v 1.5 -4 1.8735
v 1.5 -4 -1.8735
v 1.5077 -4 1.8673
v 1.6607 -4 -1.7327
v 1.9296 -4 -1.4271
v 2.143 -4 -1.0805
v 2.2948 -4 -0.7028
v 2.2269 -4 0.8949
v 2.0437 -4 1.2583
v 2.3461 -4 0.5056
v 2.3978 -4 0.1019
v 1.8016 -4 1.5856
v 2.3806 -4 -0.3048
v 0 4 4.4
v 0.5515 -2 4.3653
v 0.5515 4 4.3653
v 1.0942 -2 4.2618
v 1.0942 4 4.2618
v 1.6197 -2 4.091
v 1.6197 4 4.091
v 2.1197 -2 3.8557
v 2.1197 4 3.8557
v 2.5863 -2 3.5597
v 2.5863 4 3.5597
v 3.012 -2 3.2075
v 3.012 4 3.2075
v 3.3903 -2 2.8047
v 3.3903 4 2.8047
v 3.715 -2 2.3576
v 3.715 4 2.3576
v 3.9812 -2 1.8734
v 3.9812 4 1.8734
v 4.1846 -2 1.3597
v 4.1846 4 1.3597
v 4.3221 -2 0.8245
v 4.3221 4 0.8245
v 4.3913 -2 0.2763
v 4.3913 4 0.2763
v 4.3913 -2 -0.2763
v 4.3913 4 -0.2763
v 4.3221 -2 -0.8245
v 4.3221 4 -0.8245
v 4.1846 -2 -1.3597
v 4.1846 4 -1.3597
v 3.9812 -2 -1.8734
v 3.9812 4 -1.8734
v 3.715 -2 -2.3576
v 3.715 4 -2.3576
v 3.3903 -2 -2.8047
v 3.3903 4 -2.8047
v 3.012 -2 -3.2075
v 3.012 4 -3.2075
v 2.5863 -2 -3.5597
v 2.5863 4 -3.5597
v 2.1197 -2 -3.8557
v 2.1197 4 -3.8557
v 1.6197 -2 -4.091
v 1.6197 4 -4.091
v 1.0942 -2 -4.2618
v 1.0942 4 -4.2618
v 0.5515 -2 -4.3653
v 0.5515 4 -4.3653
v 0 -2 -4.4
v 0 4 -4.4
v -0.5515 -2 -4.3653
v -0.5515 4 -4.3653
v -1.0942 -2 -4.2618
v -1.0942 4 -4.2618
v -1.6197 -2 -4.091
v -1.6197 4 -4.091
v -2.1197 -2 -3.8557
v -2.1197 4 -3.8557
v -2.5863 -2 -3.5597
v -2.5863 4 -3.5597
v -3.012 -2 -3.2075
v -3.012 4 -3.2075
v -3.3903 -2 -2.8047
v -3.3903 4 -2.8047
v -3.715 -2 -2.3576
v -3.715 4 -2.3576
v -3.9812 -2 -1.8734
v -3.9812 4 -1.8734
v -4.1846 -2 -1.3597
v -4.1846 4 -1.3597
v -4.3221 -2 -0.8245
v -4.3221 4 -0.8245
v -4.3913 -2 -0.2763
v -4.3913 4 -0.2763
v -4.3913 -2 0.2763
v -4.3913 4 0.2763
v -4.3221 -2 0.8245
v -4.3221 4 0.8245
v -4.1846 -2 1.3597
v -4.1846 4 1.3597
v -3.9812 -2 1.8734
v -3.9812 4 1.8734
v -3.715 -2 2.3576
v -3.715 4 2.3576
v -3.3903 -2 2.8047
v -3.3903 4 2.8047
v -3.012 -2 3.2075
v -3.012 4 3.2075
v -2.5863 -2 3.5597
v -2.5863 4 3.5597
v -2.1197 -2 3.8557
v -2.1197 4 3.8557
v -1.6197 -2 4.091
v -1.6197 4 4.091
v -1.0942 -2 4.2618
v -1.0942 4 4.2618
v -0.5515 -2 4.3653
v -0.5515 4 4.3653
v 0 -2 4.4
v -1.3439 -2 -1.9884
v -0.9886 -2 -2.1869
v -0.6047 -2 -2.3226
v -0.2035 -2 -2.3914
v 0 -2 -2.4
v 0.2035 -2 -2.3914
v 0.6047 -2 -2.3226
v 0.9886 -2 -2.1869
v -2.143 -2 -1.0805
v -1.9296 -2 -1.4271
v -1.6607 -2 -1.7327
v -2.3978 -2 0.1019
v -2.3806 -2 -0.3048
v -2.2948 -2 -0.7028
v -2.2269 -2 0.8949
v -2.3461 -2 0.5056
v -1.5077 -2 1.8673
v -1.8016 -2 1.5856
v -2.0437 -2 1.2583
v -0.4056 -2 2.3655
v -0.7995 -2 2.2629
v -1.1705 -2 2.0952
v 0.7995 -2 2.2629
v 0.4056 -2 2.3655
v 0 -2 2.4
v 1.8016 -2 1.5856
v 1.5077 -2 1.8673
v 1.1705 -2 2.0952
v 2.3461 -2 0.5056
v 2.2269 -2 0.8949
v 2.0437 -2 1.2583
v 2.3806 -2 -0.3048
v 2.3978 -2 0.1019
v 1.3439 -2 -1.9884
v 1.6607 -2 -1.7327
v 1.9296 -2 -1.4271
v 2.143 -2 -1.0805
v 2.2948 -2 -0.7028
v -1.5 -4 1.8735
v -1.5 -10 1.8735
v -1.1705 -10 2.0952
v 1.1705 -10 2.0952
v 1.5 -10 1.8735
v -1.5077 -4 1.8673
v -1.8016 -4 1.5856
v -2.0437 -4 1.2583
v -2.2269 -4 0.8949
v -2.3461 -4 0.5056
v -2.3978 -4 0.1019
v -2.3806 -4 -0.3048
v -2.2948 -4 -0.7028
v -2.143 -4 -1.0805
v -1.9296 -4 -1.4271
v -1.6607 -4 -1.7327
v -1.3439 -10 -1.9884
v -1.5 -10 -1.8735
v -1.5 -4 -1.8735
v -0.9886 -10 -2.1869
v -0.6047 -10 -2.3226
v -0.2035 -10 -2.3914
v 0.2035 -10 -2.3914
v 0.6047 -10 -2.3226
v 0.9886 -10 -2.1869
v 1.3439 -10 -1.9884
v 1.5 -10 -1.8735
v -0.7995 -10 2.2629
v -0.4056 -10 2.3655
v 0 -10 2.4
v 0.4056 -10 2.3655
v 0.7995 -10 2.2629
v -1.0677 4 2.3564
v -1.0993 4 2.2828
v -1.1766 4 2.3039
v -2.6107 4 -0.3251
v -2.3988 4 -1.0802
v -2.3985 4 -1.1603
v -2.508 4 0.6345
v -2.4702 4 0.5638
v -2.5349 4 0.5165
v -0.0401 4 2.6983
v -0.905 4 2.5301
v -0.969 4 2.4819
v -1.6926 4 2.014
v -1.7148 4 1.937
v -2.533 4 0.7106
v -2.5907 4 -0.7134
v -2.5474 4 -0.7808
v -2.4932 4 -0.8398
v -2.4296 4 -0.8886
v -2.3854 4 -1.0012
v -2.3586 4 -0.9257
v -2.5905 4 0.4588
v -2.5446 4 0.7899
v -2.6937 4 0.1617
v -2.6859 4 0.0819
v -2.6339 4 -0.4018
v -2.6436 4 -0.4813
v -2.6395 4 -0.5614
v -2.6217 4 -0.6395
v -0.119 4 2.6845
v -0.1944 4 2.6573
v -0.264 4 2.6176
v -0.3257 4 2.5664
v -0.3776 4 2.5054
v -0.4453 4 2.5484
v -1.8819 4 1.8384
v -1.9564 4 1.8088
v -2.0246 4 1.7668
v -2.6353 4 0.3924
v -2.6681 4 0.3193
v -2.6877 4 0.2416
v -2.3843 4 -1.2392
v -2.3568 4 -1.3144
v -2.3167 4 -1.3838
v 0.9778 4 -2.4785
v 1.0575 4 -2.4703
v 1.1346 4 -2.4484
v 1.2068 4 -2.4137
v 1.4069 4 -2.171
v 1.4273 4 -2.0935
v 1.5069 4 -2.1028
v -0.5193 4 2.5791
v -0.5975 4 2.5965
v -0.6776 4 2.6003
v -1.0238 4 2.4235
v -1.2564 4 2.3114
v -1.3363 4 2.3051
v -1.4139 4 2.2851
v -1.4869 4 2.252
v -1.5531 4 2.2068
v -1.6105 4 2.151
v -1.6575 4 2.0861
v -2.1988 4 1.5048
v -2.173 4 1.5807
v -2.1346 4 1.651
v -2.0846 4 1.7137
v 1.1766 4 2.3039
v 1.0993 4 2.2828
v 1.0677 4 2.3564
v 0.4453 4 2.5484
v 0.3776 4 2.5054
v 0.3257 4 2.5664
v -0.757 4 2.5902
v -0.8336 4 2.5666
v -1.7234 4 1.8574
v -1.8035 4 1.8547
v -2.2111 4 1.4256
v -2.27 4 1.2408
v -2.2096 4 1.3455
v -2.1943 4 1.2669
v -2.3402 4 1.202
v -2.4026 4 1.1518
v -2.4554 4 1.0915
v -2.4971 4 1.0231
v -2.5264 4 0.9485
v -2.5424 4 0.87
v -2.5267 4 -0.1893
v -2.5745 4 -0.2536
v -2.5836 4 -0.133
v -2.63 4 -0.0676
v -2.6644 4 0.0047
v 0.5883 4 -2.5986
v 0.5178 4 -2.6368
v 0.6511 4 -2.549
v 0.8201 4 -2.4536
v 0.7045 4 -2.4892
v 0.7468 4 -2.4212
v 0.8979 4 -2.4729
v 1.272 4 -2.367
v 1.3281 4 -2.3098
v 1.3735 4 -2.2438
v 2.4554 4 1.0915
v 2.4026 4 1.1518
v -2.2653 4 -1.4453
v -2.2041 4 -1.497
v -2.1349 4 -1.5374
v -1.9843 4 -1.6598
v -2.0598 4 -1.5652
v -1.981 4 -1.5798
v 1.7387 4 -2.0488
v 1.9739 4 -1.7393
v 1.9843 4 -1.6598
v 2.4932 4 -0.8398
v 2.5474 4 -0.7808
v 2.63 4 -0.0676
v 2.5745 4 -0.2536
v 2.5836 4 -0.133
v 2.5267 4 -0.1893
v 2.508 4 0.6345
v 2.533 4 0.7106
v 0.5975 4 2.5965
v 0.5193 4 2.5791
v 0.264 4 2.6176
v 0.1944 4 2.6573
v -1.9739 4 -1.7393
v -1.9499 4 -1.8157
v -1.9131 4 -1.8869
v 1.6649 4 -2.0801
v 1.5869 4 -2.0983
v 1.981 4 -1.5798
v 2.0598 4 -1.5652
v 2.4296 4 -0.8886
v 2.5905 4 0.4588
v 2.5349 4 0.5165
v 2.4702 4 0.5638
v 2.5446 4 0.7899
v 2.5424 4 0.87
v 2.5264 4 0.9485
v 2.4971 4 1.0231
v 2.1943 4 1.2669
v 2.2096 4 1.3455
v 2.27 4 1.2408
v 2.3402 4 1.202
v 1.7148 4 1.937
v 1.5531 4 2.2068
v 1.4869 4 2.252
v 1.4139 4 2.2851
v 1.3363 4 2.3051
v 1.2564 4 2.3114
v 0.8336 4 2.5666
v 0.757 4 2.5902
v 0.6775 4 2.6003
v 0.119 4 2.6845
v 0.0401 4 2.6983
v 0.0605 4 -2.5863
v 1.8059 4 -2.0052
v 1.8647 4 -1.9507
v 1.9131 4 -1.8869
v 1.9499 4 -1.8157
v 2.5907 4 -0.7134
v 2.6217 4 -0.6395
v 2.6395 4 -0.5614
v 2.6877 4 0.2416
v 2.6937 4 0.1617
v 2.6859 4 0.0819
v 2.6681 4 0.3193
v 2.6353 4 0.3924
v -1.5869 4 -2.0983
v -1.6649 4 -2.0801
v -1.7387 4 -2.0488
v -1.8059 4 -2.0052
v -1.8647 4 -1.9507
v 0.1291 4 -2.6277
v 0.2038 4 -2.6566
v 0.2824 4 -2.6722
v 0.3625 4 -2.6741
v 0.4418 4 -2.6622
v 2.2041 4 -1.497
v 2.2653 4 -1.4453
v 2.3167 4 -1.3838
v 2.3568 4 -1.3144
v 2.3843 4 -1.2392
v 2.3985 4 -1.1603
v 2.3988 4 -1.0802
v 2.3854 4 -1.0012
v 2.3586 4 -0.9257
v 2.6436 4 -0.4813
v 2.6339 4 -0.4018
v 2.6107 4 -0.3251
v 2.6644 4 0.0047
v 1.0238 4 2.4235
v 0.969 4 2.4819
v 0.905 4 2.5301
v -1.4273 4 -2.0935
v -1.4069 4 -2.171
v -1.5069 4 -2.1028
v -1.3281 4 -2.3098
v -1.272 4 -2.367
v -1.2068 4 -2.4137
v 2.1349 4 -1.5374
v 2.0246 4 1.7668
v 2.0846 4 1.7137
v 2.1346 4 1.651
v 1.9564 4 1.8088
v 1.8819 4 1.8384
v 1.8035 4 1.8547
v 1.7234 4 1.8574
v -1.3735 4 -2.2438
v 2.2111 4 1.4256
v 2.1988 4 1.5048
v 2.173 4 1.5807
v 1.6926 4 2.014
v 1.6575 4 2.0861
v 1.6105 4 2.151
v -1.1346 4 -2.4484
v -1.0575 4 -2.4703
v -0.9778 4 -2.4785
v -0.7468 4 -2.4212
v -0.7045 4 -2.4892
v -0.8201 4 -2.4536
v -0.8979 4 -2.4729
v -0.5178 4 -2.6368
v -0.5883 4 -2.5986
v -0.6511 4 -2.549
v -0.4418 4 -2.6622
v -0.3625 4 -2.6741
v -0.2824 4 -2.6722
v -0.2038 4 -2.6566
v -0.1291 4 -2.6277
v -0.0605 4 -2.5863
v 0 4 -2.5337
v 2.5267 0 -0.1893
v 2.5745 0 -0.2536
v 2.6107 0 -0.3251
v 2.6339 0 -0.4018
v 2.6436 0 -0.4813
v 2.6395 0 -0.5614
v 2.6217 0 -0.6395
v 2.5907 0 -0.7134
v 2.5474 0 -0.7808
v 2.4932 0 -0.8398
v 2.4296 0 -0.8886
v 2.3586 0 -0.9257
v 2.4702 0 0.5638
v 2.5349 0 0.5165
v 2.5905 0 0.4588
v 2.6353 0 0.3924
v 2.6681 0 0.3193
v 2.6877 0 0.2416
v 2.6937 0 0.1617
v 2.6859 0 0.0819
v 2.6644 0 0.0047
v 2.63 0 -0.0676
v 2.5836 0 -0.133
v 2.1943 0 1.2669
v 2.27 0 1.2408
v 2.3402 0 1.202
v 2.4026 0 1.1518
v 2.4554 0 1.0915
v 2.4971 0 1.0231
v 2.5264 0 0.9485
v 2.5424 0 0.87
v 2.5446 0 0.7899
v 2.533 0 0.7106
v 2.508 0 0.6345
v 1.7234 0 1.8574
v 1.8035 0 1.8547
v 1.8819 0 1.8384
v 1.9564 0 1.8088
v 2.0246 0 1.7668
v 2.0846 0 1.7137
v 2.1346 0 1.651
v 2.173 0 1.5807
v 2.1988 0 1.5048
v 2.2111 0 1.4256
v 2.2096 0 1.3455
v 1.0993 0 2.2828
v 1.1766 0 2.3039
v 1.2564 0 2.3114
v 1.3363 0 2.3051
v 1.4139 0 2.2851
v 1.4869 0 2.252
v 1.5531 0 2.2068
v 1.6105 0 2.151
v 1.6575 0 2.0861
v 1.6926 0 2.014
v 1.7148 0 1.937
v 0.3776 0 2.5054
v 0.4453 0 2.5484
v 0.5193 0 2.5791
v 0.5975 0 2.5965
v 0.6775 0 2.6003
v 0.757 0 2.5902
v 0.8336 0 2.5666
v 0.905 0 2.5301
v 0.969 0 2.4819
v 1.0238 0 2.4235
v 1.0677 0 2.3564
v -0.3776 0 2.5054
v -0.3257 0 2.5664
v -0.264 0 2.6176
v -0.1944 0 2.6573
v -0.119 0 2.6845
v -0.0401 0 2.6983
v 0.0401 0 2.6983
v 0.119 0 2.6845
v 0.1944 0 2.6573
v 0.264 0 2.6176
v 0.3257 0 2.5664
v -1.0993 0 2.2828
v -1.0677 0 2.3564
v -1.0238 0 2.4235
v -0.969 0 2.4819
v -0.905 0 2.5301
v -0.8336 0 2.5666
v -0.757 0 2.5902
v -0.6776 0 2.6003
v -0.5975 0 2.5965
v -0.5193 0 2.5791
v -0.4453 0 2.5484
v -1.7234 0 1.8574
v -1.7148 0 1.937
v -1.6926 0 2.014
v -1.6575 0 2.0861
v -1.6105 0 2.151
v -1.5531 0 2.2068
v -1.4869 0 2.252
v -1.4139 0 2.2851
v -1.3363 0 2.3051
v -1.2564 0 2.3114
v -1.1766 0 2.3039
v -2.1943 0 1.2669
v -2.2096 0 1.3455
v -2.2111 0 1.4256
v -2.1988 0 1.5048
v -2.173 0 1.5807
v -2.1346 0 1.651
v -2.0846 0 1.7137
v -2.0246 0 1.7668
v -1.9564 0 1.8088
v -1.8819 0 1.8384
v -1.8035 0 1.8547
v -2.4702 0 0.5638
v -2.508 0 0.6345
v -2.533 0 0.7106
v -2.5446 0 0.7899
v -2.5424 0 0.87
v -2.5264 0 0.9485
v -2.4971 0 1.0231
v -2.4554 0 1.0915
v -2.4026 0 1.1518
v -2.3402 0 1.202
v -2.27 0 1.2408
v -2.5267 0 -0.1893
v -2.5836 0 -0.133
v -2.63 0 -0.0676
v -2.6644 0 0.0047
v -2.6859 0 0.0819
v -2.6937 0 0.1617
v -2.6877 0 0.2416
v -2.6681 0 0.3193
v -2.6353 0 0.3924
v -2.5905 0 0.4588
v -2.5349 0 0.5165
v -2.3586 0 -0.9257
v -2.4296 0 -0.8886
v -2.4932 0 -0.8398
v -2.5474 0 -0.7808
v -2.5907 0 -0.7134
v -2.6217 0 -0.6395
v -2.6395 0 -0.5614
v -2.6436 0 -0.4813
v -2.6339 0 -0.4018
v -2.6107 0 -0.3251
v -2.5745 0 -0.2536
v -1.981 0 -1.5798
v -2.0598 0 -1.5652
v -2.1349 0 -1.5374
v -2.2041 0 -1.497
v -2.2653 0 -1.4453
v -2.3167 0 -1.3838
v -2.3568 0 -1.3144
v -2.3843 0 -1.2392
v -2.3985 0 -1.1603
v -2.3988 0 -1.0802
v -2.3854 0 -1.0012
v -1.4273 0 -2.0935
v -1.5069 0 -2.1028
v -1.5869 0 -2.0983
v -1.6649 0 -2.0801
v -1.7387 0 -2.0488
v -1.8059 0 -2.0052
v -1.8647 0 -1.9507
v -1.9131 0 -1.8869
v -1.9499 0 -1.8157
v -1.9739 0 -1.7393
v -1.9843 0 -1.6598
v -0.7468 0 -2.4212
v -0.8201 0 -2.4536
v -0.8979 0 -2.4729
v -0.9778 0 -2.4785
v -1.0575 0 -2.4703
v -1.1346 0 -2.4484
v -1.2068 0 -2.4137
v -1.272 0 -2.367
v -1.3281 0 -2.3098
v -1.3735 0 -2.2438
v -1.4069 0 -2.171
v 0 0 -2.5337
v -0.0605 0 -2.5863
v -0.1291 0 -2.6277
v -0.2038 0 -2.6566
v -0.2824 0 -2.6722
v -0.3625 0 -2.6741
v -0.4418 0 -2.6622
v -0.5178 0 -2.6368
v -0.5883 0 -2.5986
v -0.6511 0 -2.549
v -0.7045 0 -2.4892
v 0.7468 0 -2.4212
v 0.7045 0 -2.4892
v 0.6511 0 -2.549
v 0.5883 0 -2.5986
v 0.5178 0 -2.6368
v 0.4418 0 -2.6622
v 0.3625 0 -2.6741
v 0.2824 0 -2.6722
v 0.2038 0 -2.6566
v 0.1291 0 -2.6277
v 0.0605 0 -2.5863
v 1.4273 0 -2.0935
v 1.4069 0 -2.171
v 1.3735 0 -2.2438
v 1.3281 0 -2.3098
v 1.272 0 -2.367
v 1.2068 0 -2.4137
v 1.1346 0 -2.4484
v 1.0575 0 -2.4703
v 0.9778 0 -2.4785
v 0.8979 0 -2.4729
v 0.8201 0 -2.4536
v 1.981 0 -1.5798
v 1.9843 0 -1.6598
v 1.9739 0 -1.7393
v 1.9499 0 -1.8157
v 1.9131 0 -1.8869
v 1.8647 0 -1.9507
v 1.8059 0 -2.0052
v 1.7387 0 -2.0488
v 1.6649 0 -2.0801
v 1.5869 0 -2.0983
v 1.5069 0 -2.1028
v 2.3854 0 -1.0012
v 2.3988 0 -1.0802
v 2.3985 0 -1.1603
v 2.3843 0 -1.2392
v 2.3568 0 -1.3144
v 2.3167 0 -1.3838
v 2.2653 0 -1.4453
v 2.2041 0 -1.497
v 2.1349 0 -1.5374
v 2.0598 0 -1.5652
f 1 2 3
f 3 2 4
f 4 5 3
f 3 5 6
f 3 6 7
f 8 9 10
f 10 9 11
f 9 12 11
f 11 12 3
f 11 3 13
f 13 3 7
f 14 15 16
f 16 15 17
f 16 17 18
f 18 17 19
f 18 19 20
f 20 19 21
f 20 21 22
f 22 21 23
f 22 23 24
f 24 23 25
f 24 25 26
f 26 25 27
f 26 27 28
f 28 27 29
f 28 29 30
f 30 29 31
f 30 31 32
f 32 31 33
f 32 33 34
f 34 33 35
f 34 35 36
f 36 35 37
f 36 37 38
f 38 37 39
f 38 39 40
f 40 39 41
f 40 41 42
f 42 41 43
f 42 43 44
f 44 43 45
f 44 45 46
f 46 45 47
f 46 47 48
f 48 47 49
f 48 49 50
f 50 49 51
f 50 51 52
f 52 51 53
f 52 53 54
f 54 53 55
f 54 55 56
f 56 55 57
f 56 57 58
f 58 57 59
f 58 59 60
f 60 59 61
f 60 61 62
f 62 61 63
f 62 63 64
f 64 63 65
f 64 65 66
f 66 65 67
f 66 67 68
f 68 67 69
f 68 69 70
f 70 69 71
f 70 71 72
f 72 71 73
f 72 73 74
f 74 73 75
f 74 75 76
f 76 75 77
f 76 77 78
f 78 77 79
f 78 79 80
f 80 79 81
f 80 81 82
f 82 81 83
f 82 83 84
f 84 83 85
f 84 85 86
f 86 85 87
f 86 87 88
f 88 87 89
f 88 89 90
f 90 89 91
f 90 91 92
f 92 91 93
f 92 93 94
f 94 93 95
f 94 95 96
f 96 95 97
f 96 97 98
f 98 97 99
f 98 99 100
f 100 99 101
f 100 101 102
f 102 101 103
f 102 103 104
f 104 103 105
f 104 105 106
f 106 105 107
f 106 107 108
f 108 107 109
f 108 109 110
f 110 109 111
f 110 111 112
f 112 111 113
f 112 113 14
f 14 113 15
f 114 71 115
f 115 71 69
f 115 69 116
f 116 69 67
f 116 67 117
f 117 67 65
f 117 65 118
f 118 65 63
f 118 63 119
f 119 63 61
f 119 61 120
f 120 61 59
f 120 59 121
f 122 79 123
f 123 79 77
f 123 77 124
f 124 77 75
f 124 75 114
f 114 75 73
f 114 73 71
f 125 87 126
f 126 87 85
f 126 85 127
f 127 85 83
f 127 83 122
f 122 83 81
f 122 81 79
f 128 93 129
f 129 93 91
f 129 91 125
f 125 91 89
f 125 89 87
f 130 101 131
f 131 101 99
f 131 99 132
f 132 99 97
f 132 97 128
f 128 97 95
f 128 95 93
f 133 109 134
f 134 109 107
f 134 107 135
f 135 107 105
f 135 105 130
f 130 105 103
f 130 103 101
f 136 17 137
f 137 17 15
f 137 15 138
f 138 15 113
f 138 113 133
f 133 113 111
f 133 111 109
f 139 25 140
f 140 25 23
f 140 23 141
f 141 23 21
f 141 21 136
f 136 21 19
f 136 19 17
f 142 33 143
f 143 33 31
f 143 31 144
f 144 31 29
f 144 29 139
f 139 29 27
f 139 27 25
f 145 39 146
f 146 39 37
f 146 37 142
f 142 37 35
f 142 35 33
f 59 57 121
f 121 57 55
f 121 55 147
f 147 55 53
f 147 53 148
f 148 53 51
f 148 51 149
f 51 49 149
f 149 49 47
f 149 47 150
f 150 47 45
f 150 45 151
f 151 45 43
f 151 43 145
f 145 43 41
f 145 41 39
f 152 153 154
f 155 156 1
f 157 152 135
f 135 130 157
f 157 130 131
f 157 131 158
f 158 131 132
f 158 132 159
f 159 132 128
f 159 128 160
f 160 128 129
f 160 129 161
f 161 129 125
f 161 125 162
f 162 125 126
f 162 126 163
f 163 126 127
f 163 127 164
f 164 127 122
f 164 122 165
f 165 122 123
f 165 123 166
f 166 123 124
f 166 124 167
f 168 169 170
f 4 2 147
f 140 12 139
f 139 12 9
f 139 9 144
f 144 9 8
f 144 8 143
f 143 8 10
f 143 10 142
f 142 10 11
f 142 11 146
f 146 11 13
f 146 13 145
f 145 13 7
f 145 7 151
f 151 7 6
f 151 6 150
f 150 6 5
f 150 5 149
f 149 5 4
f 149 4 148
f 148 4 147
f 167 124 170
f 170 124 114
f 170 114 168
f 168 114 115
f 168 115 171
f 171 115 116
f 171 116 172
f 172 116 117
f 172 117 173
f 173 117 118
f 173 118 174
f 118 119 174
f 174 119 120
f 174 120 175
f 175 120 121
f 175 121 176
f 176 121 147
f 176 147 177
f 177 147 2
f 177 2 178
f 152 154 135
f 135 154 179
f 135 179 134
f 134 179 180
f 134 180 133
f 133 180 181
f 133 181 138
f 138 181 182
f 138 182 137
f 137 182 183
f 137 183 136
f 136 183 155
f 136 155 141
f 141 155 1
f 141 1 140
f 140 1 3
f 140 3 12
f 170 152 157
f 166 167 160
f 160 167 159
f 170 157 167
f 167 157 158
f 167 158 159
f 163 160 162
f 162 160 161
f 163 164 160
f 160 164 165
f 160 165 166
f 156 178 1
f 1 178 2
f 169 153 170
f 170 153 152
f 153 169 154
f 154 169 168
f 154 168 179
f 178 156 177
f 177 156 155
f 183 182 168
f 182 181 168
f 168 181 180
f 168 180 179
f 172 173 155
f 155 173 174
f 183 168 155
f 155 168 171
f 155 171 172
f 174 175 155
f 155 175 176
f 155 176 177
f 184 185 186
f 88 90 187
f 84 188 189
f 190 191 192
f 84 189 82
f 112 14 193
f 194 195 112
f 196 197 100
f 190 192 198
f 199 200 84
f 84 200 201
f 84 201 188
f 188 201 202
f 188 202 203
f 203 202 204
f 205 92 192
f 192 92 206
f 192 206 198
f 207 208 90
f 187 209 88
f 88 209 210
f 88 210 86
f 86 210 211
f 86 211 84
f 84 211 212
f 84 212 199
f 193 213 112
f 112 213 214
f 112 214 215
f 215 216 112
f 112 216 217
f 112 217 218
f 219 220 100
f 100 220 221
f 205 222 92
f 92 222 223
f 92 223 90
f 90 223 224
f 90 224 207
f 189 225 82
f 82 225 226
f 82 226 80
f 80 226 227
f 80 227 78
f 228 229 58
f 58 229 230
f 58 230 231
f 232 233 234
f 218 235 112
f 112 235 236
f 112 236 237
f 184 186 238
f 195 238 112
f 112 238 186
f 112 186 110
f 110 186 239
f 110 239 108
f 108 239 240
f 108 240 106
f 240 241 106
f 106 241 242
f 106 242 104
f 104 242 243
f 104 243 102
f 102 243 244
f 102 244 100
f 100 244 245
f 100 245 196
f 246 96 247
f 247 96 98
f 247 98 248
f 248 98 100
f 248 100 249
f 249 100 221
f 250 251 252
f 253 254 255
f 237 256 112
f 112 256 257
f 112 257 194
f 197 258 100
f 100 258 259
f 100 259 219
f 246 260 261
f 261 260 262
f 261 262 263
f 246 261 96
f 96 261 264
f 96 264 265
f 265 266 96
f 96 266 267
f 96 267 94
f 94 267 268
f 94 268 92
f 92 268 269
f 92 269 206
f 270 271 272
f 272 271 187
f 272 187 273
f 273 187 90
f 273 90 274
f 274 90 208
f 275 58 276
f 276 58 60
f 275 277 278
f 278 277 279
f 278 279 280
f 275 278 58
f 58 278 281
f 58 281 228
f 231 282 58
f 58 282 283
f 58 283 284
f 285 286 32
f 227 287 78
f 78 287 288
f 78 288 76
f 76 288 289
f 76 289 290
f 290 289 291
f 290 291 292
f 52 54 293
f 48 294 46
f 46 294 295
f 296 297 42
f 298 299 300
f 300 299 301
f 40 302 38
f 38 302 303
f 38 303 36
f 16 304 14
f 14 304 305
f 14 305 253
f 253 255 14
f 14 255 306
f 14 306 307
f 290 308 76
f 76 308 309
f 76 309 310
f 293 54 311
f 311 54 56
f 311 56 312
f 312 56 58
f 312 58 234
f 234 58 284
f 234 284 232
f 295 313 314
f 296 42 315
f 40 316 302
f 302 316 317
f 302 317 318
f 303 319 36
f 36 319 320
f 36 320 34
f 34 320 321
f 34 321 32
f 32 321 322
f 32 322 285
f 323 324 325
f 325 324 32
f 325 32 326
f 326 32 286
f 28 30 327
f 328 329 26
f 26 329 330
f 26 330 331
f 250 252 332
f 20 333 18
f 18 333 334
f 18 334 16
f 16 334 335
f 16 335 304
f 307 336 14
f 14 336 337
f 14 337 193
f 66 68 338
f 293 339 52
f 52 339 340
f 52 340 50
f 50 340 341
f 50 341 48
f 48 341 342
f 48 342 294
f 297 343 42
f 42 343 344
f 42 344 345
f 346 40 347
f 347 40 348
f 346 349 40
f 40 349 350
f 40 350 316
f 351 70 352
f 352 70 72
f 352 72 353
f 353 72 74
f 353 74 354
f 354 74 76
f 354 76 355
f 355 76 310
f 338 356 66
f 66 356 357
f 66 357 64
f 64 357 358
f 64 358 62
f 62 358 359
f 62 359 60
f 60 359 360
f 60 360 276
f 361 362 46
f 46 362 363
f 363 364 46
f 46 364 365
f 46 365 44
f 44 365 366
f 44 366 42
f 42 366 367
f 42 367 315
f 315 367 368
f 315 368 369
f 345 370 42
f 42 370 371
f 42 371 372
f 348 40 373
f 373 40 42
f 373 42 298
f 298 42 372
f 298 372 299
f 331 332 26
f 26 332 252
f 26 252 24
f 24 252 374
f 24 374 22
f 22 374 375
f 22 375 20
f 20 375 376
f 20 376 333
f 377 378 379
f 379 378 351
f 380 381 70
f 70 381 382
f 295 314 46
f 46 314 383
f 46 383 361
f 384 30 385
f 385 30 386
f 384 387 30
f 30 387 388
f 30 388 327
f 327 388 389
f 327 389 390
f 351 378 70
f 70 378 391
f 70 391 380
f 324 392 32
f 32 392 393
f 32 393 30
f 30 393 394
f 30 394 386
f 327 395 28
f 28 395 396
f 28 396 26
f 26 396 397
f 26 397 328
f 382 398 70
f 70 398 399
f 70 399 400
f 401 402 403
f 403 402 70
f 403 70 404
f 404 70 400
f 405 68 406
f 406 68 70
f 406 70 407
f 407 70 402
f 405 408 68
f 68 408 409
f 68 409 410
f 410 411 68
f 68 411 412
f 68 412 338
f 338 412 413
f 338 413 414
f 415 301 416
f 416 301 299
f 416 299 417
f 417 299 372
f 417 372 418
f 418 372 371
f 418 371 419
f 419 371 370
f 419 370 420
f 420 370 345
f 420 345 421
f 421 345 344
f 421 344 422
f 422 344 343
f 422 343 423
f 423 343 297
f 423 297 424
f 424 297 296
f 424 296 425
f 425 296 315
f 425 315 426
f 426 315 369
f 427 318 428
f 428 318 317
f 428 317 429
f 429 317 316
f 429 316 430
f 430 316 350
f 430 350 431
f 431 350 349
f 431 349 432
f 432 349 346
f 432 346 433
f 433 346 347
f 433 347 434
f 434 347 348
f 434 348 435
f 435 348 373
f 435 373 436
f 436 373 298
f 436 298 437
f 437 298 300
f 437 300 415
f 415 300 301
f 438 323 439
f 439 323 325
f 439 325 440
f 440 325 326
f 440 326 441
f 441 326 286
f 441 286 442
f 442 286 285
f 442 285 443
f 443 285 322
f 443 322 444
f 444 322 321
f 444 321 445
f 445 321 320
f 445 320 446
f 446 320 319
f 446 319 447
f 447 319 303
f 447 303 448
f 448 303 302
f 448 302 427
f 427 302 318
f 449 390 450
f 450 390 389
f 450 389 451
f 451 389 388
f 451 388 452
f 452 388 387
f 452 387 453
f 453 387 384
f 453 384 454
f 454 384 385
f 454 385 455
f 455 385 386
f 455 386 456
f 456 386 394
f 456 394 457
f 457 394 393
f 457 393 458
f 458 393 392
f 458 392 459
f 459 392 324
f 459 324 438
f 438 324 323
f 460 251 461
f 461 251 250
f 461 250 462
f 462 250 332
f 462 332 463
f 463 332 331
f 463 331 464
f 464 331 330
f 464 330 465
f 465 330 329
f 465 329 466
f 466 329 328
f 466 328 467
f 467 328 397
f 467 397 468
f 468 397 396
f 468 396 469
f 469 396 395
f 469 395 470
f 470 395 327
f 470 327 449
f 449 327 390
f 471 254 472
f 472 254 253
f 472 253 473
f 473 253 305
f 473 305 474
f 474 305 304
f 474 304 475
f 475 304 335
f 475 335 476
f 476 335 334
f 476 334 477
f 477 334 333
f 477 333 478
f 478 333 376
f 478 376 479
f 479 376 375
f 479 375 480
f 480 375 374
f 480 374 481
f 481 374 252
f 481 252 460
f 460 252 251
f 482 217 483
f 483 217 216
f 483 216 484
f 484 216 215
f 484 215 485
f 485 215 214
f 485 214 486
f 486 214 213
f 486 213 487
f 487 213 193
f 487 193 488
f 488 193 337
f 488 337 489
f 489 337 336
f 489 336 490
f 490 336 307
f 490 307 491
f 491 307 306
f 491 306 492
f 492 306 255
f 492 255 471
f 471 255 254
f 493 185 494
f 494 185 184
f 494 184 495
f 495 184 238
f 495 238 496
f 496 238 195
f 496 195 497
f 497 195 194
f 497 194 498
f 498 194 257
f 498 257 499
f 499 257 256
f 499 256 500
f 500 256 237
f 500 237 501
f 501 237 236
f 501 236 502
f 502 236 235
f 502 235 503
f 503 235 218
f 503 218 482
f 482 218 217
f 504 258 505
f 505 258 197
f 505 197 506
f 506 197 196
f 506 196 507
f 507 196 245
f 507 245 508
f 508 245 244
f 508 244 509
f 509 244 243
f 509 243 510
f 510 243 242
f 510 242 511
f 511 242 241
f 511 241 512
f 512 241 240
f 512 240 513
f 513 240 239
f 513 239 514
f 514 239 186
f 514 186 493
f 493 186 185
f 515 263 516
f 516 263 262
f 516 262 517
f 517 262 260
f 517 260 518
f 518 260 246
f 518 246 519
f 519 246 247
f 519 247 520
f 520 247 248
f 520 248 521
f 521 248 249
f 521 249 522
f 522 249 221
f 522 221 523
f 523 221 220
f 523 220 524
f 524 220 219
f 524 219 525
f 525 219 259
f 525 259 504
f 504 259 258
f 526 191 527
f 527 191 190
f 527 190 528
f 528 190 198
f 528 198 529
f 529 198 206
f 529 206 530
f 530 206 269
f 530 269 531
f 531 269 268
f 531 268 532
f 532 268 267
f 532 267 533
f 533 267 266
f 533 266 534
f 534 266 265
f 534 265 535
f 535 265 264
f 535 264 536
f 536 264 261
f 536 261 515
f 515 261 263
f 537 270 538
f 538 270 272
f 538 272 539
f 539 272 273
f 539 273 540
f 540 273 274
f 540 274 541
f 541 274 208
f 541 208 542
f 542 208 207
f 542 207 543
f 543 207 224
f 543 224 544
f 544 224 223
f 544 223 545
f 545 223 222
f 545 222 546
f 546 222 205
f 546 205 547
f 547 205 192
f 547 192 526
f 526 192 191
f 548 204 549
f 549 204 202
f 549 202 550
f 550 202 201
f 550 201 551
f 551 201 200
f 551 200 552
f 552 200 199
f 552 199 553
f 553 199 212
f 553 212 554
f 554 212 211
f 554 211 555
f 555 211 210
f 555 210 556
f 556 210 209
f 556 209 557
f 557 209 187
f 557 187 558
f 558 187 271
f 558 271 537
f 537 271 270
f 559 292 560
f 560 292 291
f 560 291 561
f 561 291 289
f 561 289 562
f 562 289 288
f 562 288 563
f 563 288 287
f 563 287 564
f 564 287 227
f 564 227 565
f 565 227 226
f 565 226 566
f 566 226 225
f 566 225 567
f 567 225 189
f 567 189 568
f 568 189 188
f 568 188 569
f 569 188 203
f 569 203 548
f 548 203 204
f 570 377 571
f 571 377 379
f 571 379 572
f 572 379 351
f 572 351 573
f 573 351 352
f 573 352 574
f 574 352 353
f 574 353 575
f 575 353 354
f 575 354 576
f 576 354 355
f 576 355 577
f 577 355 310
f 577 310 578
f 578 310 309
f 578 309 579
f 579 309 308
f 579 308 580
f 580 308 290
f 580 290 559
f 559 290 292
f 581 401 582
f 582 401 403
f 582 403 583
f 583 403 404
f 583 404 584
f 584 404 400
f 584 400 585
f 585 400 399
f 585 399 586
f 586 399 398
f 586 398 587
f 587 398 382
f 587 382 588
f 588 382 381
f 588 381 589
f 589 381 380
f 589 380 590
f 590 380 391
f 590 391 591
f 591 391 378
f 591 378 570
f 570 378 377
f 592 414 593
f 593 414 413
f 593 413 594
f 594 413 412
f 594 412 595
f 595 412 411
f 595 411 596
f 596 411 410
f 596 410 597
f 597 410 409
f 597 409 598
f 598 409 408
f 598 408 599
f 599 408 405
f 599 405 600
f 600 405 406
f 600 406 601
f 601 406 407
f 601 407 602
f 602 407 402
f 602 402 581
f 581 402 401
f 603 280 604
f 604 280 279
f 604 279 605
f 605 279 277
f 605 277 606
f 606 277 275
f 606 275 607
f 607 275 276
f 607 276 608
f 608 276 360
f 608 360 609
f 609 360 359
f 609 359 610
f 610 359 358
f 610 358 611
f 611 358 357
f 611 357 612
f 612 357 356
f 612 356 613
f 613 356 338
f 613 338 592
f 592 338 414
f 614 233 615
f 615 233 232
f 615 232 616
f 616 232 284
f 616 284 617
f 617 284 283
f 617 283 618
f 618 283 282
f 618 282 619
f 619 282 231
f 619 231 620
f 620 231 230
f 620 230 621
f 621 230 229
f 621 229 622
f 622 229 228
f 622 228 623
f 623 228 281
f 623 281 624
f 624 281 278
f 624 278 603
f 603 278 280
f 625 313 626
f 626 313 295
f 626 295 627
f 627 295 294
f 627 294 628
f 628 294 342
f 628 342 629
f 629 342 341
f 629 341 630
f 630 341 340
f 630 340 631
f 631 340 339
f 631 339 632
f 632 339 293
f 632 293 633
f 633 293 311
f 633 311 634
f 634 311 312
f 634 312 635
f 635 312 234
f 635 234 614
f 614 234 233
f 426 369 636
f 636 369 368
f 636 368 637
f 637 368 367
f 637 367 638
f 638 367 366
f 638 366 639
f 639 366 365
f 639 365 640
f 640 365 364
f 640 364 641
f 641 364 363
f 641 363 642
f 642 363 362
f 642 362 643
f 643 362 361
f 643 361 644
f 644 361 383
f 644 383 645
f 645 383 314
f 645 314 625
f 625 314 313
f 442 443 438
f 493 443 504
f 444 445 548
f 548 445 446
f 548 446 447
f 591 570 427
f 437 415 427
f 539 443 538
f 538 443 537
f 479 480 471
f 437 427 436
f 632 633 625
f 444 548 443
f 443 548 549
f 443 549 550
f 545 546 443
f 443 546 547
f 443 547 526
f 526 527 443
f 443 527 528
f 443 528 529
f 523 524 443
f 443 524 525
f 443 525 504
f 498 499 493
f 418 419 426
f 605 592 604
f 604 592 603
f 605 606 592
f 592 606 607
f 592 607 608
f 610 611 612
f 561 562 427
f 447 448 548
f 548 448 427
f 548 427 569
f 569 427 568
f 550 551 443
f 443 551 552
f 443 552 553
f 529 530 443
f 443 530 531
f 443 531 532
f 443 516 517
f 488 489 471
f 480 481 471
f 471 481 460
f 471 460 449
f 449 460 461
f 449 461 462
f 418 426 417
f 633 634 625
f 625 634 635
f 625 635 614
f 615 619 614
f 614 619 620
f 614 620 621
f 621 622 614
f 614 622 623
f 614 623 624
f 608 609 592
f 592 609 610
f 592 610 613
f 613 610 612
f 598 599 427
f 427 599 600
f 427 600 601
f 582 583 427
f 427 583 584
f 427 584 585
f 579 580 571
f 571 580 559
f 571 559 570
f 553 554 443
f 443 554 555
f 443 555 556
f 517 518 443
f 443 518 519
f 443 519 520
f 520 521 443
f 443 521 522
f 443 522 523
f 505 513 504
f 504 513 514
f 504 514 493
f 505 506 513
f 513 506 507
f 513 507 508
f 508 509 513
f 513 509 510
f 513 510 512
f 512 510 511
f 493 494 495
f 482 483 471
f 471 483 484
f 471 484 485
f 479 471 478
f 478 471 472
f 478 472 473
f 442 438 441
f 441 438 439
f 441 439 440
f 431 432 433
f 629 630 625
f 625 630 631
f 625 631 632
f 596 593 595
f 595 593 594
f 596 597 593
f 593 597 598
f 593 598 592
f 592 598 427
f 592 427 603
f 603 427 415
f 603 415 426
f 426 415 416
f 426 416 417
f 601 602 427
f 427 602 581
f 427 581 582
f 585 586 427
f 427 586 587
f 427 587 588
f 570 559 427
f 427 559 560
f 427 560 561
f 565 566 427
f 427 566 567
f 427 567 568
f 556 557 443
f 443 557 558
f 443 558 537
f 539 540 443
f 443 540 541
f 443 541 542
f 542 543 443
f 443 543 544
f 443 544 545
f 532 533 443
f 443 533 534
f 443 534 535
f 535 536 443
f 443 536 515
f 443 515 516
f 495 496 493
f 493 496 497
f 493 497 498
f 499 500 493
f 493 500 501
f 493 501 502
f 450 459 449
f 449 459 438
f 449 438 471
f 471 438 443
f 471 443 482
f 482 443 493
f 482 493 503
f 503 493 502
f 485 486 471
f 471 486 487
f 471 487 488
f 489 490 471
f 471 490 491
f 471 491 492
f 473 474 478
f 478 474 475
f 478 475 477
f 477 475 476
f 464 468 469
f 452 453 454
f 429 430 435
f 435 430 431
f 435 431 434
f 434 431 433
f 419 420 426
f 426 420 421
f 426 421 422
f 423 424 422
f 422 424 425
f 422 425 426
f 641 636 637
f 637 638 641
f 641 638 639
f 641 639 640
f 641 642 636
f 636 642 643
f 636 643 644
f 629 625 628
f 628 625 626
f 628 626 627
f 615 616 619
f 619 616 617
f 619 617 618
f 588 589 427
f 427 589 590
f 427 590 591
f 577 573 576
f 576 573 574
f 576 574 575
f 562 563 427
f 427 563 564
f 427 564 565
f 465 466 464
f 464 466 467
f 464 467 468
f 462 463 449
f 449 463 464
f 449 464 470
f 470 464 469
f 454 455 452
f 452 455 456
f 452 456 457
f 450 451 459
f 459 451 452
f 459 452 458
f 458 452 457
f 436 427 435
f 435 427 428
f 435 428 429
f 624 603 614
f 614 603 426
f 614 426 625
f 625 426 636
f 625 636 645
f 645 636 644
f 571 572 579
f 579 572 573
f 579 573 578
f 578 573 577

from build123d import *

# Parameters (mm, degrees)
SKETCH1_R           = 3.95
BOSS_EXTRUDE1_DEPTH = 4
SKETCH2_R           = 4.4
BOSS_EXTRUDE2_DEPTH = 2
SKETCH4_R           = 2.4
BOSS_EXTRUDE3_DEPTH = 2
BOSS_EXTRUDE4_DEPTH = 6
SKETCH6_R           = 4.4
SKETCH6_R_2         = 3.95
BOSS_EXTRUDE5_DEPTH = 4
CUT_EXTRUDE1_DEPTH  = 4


with BuildPart() as part:
    # Sketch1 → Boss-Extrude1 (new body)
    with BuildSketch(Plane(origin=(0, 0, 0), x_dir=(1, 0, 0), z_dir=(0, 1, 0))):
        with Locations(Location((0, 0, 0), (0, 0, 270))):
            Circle(SKETCH1_R)
        with BuildLine():
            ThreePointArc((-0.166646614, 2.345141313), (-0.092401566, 2.286261662), (0, 2.2652595))
            ThreePointArc((0, 2.2652595), (0.092401566, 2.286261662), (0.166646614, 2.345141313))
            ThreePointArc((0.166646614, 2.345141313), (0.365153552, 2.422635524), (0.531999564, 2.290073216))
            ThreePointArc((0.531999564, 2.290073216), (0.585591031, 2.211925311), (0.667696959, 2.164620376))
            ThreePointArc((0.667696959, 2.164620376), (0.762183879, 2.157453631), (0.850485509, 2.191833312))
            ThreePointArc((0.850485509, 2.191833312), (1.063015161, 2.207373726), (1.183375246, 2.031522064))
            ThreePointArc((1.183375246, 2.031522064), (1.211551295, 1.941049689), (1.276066113, 1.871645232))
            ThreePointArc((1.276066113, 1.871645232), (1.364242809, 1.836946378), (1.458755034, 1.843771303))
            ThreePointArc((1.458755034, 1.843771303), (1.666423208, 1.795977086), (1.729602845, 1.592461261))
            ThreePointArc((1.729602845, 1.592461261), (1.72985991, 1.497703284), (1.771051193, 1.412366197))
            ThreePointArc((1.771051193, 1.412366197), (1.845082779, 1.353218377), (1.937407773, 1.331882123))
            ThreePointArc((1.937407773, 1.331882123), (2.121762239, 1.225), (2.12214764, 1.011903287))
            ThreePointArc((2.12214764, 1.011903287), (2.094462881, 0.92127937), (2.108670602, 0.827592226))
            ThreePointArc((2.108670602, 0.827592226), (2.161979047, 0.749250985), (2.243913329, 0.701649371))
            ThreePointArc((2.243913329, 0.701649371), (2.388573385, 0.545176288), (2.326130305, 0.341433266))
            ThreePointArc((2.326130305, 0.341433266), (2.272963633, 0.262995741), (2.258925375, 0.169283054))
            ThreePointArc((2.258925375, 0.169283054), (2.286773988, 0.078709355), (2.351037339, 0.009071994))
            ThreePointArc((2.351037339, 0.009071994), (2.443149303, -0.183088729), (2.323426084, -0.3593746))
            ThreePointArc((2.323426084, -0.3593746), (2.249501592, -0.418656214), (2.208464714, -0.504067659))
            ThreePointArc((2.208464714, -0.504067659), (2.208379026, -0.598825947), (2.249261363, -0.68431147))
            ThreePointArc((2.249261363, -0.68431147), (2.280640684, -0.89508551), (2.114275259, -1.028250455))
            ThreePointArc((2.114275259, -1.028250455), (2.026161462, -1.063108727), (1.961772273, -1.13262975))
            ThreePointArc((1.961772273, -1.13262975), (1.933759896, -1.223152935), (1.947628645, -1.316890857))
            ThreePointArc((1.947628645, -1.316890857), (1.915487132, -1.527550015), (1.717261799, -1.605761745))
            ThreePointArc((1.717261799, -1.605761745), (1.622787995, -1.613099364), (1.540767756, -1.660552716))
            ThreePointArc((1.540767756, -1.660552716), (1.487317713, -1.738797417), (1.472940575, -1.832458712))
            ThreePointArc((1.472940575, -1.832458712), (1.380134142, -2.024284997), (1.167662092, -2.040594058))
            ThreePointArc((1.167662092, -2.040594058), (1.075222693, -2.019759044), (0.982859262, -2.040928287))
            ThreePointArc((0.982859262, -2.040928287), (0.908720824, -2.099942118), (0.86737527, -2.185204569))
            ThreePointArc((0.86737527, -2.185204569), (0.722150177, -2.341153374), (0.514310485, -2.294110633))
            ThreePointArc((0.514310485, -2.294110633), (0.432119136, -2.246954269), (0.337619409, -2.239958423))
            ThreePointArc((0.337619409, -2.239958423), (0.249380102, -2.274497747), (0.184739867, -2.343785411))
            ThreePointArc((0.184739867, -2.343785411), (0, -2.45), (-0.184739867, -2.343785411))
            ThreePointArc((-0.184739867, -2.343785411), (-0.249380102, -2.274497747), (-0.337619409, -2.239958423))
            ThreePointArc((-0.337619409, -2.239958423), (-0.432119136, -2.246954269), (-0.514310485, -2.294110633))
            ThreePointArc((-0.514310485, -2.294110633), (-0.722150177, -2.341153374), (-0.86737527, -2.185204569))
            ThreePointArc((-0.86737527, -2.185204569), (-0.908720824, -2.099942118), (-0.982859262, -2.040928287))
            ThreePointArc((-0.982859262, -2.040928287), (-1.075222693, -2.019759044), (-1.167662092, -2.040594058))
            ThreePointArc((-1.167662092, -2.040594058), (-1.380134142, -2.024284997), (-1.472940575, -1.832458712))
            ThreePointArc((-1.472940575, -1.832458712), (-1.487317713, -1.738797417), (-1.540767756, -1.660552716))
            ThreePointArc((-1.540767756, -1.660552716), (-1.622787995, -1.613099364), (-1.717261799, -1.605761745))
            ThreePointArc((-1.717261799, -1.605761745), (-1.915487132, -1.527550015), (-1.947628645, -1.316890857))
            ThreePointArc((-1.947628645, -1.316890857), (-1.933759896, -1.223152935), (-1.961772273, -1.13262975))
            ThreePointArc((-1.961772273, -1.13262975), (-2.026161462, -1.063108727), (-2.114275259, -1.028250455))
            ThreePointArc((-2.114275259, -1.028250455), (-2.280640684, -0.89508551), (-2.249261363, -0.68431147))
            ThreePointArc((-2.249261363, -0.68431147), (-2.208379026, -0.598825947), (-2.208464714, -0.504067659))
            ThreePointArc((-2.208464714, -0.504067659), (-2.249501592, -0.418656214), (-2.323426084, -0.3593746))
            ThreePointArc((-2.323426084, -0.3593746), (-2.443149303, -0.183088729), (-2.351037339, 0.009071994))
            ThreePointArc((-2.351037339, 0.009071994), (-2.286773988, 0.078709355), (-2.258925375, 0.169283054))
            ThreePointArc((-2.258925375, 0.169283054), (-2.272963633, 0.262995741), (-2.326130305, 0.341433266))
            ThreePointArc((-2.326130305, 0.341433266), (-2.388573385, 0.545176288), (-2.243913329, 0.701649371))
            ThreePointArc((-2.243913329, 0.701649371), (-2.161979047, 0.749250985), (-2.108670602, 0.827592226))
            ThreePointArc((-2.108670602, 0.827592226), (-2.094462881, 0.92127937), (-2.12214764, 1.011903287))
            ThreePointArc((-2.12214764, 1.011903287), (-2.121762239, 1.225), (-1.937407773, 1.331882123))
            ThreePointArc((-1.937407773, 1.331882123), (-1.845082779, 1.353218377), (-1.771051193, 1.412366197))
            ThreePointArc((-1.771051193, 1.412366197), (-1.72985991, 1.497703284), (-1.729602845, 1.592461261))
            ThreePointArc((-1.729602845, 1.592461261), (-1.666423208, 1.795977086), (-1.458755034, 1.843771303))
            ThreePointArc((-1.458755034, 1.843771303), (-1.364242809, 1.836946378), (-1.276066113, 1.871645232))
            ThreePointArc((-1.276066113, 1.871645232), (-1.211551295, 1.941049689), (-1.183375246, 2.031522064))
            ThreePointArc((-1.183375246, 2.031522064), (-1.063015161, 2.207373726), (-0.850485509, 2.191833312))
            ThreePointArc((-0.850485509, 2.191833312), (-0.762183879, 2.157453631), (-0.667696959, 2.164620376))
            ThreePointArc((-0.667696959, 2.164620376), (-0.585591031, 2.211925311), (-0.531999564, 2.290073216))
            ThreePointArc((-0.531999564, 2.290073216), (-0.365153552, 2.422635524), (-0.166646614, 2.345141313))
        make_face(mode=Mode.SUBTRACT)
    extrude(amount=BOSS_EXTRUDE1_DEPTH)

    # Sketch2 → Boss-Extrude2 (add)
    with BuildSketch(Plane.XZ):
        with Locations(Location((0, 0, 0), (0, 0, 270))):
            Circle(SKETCH2_R)
    extrude(amount=BOSS_EXTRUDE2_DEPTH)

    # Sketch4 → Boss-Extrude3 (add)
    with BuildSketch(Plane.XZ.offset(2)):
        with Locations(Location((0, 0, 0), (0, 0, 270))):
            Circle(SKETCH4_R)
    extrude(amount=BOSS_EXTRUDE3_DEPTH)

    # Sketch5 → Boss-Extrude4 (add)
    with BuildSketch(Plane.XZ.offset(4)):
        with BuildLine():
            ThreePointArc((1.5, 1.8734994), (0, 2.4), (-1.5, 1.8734994))
            Line((-1.5, 1.8734994), (-1.5, -1.8734994))
            ThreePointArc((-1.5, -1.8734994), (0, -2.4), (1.5, -1.8734994))
            Line((1.5, -1.8734994), (1.5, 1.8734994))
        make_face()
    extrude(amount=BOSS_EXTRUDE4_DEPTH)

    # Sketch6 → Boss-Extrude5 (add)
    with BuildSketch(Plane(origin=(0, 0, 0), x_dir=(1, 0, 0), z_dir=(0, 1, 0))):
        with Locations(Location((0, 0, 0), (0, 0, 270))):
            Circle(SKETCH6_R)
        Circle(SKETCH6_R_2, mode=Mode.SUBTRACT)
    extrude(amount=BOSS_EXTRUDE5_DEPTH)

    # Sketch8 → Cut-Extrude1 (cut)
    with BuildSketch(Plane(origin=(0, 4, 0), x_dir=(1, 0, 0), z_dir=(0, 1, 0))):
        with BuildLine():
            ThreePointArc((0.746832801, 2.421172474), (0.402414119, 2.669843231), (0, 2.533739407))
            ThreePointArc((0, 2.533739407), (-0.402414119, 2.669843231), (-0.746832801, 2.421172474))
            ThreePointArc((-0.746832801, 2.421172474), (-1.171486096, 2.432615943), (-1.42730623, 2.093473742))
            ThreePointArc((-1.42730623, 2.093473742), (-1.836466392, 1.979240054), (-1.980957237, 1.579760681))
            ThreePointArc((-1.980957237, 1.579760681), (-2.33826859, 1.35), (-2.3585915, 0.92567895))
            ThreePointArc((-2.3585915, 0.92567895), (-2.632305363, 0.600806522), (-2.526654558, 0.189346583))
            ThreePointArc((-2.526654558, 0.189346583), (-2.692450252, -0.201771253), (-2.47021327, -0.563810059))
            ThreePointArc((-2.47021327, -0.563810059), (-2.513359121, -0.986420766), (-2.194282693, -1.266869704))
            ThreePointArc((-2.194282693, -1.266869704), (-2.110945003, -1.683422465), (-1.723380469, -1.857362415))
            ThreePointArc((-1.723380469, -1.857362415), (-1.520964157, -2.230844691), (-1.099348328, -2.282820325))
            ThreePointArc((-1.099348328, -2.282820325), (-0.795838971, -2.580046576), (-0.377634263, -2.505439631))
            ThreePointArc((-0.377634263, -2.505439631), (0, -2.7), (0.377634263, -2.505439631))
            ThreePointArc((0.377634263, -2.505439631), (0.795838971, -2.580046576), (1.099348328, -2.282820325))
            ThreePointArc((1.099348328, -2.282820325), (1.520964157, -2.230844691), (1.723380469, -1.857362415))
            ThreePointArc((1.723380469, -1.857362415), (2.110945003, -1.683422465), (2.194282693, -1.266869704))
            ThreePointArc((2.194282693, -1.266869704), (2.513359121, -0.986420766), (2.47021327, -0.563810059))
            ThreePointArc((2.47021327, -0.563810059), (2.692450252, -0.201771253), (2.526654558, 0.189346583))
            ThreePointArc((2.526654558, 0.189346583), (2.632305363, 0.600806522), (2.3585915, 0.92567895))
            ThreePointArc((2.3585915, 0.92567895), (2.33826859, 1.35), (1.980957237, 1.579760681))
            ThreePointArc((1.980957237, 1.579760681), (1.836466392, 1.979240054), (1.42730623, 2.093473742))
            ThreePointArc((1.42730623, 2.093473742), (1.171486096, 2.432615943), (0.746832801, 2.421172474))
        make_face()
    extrude(amount=-CUT_EXTRUDE1_DEPTH, mode=Mode.SUBTRACT)


solid = part.part
